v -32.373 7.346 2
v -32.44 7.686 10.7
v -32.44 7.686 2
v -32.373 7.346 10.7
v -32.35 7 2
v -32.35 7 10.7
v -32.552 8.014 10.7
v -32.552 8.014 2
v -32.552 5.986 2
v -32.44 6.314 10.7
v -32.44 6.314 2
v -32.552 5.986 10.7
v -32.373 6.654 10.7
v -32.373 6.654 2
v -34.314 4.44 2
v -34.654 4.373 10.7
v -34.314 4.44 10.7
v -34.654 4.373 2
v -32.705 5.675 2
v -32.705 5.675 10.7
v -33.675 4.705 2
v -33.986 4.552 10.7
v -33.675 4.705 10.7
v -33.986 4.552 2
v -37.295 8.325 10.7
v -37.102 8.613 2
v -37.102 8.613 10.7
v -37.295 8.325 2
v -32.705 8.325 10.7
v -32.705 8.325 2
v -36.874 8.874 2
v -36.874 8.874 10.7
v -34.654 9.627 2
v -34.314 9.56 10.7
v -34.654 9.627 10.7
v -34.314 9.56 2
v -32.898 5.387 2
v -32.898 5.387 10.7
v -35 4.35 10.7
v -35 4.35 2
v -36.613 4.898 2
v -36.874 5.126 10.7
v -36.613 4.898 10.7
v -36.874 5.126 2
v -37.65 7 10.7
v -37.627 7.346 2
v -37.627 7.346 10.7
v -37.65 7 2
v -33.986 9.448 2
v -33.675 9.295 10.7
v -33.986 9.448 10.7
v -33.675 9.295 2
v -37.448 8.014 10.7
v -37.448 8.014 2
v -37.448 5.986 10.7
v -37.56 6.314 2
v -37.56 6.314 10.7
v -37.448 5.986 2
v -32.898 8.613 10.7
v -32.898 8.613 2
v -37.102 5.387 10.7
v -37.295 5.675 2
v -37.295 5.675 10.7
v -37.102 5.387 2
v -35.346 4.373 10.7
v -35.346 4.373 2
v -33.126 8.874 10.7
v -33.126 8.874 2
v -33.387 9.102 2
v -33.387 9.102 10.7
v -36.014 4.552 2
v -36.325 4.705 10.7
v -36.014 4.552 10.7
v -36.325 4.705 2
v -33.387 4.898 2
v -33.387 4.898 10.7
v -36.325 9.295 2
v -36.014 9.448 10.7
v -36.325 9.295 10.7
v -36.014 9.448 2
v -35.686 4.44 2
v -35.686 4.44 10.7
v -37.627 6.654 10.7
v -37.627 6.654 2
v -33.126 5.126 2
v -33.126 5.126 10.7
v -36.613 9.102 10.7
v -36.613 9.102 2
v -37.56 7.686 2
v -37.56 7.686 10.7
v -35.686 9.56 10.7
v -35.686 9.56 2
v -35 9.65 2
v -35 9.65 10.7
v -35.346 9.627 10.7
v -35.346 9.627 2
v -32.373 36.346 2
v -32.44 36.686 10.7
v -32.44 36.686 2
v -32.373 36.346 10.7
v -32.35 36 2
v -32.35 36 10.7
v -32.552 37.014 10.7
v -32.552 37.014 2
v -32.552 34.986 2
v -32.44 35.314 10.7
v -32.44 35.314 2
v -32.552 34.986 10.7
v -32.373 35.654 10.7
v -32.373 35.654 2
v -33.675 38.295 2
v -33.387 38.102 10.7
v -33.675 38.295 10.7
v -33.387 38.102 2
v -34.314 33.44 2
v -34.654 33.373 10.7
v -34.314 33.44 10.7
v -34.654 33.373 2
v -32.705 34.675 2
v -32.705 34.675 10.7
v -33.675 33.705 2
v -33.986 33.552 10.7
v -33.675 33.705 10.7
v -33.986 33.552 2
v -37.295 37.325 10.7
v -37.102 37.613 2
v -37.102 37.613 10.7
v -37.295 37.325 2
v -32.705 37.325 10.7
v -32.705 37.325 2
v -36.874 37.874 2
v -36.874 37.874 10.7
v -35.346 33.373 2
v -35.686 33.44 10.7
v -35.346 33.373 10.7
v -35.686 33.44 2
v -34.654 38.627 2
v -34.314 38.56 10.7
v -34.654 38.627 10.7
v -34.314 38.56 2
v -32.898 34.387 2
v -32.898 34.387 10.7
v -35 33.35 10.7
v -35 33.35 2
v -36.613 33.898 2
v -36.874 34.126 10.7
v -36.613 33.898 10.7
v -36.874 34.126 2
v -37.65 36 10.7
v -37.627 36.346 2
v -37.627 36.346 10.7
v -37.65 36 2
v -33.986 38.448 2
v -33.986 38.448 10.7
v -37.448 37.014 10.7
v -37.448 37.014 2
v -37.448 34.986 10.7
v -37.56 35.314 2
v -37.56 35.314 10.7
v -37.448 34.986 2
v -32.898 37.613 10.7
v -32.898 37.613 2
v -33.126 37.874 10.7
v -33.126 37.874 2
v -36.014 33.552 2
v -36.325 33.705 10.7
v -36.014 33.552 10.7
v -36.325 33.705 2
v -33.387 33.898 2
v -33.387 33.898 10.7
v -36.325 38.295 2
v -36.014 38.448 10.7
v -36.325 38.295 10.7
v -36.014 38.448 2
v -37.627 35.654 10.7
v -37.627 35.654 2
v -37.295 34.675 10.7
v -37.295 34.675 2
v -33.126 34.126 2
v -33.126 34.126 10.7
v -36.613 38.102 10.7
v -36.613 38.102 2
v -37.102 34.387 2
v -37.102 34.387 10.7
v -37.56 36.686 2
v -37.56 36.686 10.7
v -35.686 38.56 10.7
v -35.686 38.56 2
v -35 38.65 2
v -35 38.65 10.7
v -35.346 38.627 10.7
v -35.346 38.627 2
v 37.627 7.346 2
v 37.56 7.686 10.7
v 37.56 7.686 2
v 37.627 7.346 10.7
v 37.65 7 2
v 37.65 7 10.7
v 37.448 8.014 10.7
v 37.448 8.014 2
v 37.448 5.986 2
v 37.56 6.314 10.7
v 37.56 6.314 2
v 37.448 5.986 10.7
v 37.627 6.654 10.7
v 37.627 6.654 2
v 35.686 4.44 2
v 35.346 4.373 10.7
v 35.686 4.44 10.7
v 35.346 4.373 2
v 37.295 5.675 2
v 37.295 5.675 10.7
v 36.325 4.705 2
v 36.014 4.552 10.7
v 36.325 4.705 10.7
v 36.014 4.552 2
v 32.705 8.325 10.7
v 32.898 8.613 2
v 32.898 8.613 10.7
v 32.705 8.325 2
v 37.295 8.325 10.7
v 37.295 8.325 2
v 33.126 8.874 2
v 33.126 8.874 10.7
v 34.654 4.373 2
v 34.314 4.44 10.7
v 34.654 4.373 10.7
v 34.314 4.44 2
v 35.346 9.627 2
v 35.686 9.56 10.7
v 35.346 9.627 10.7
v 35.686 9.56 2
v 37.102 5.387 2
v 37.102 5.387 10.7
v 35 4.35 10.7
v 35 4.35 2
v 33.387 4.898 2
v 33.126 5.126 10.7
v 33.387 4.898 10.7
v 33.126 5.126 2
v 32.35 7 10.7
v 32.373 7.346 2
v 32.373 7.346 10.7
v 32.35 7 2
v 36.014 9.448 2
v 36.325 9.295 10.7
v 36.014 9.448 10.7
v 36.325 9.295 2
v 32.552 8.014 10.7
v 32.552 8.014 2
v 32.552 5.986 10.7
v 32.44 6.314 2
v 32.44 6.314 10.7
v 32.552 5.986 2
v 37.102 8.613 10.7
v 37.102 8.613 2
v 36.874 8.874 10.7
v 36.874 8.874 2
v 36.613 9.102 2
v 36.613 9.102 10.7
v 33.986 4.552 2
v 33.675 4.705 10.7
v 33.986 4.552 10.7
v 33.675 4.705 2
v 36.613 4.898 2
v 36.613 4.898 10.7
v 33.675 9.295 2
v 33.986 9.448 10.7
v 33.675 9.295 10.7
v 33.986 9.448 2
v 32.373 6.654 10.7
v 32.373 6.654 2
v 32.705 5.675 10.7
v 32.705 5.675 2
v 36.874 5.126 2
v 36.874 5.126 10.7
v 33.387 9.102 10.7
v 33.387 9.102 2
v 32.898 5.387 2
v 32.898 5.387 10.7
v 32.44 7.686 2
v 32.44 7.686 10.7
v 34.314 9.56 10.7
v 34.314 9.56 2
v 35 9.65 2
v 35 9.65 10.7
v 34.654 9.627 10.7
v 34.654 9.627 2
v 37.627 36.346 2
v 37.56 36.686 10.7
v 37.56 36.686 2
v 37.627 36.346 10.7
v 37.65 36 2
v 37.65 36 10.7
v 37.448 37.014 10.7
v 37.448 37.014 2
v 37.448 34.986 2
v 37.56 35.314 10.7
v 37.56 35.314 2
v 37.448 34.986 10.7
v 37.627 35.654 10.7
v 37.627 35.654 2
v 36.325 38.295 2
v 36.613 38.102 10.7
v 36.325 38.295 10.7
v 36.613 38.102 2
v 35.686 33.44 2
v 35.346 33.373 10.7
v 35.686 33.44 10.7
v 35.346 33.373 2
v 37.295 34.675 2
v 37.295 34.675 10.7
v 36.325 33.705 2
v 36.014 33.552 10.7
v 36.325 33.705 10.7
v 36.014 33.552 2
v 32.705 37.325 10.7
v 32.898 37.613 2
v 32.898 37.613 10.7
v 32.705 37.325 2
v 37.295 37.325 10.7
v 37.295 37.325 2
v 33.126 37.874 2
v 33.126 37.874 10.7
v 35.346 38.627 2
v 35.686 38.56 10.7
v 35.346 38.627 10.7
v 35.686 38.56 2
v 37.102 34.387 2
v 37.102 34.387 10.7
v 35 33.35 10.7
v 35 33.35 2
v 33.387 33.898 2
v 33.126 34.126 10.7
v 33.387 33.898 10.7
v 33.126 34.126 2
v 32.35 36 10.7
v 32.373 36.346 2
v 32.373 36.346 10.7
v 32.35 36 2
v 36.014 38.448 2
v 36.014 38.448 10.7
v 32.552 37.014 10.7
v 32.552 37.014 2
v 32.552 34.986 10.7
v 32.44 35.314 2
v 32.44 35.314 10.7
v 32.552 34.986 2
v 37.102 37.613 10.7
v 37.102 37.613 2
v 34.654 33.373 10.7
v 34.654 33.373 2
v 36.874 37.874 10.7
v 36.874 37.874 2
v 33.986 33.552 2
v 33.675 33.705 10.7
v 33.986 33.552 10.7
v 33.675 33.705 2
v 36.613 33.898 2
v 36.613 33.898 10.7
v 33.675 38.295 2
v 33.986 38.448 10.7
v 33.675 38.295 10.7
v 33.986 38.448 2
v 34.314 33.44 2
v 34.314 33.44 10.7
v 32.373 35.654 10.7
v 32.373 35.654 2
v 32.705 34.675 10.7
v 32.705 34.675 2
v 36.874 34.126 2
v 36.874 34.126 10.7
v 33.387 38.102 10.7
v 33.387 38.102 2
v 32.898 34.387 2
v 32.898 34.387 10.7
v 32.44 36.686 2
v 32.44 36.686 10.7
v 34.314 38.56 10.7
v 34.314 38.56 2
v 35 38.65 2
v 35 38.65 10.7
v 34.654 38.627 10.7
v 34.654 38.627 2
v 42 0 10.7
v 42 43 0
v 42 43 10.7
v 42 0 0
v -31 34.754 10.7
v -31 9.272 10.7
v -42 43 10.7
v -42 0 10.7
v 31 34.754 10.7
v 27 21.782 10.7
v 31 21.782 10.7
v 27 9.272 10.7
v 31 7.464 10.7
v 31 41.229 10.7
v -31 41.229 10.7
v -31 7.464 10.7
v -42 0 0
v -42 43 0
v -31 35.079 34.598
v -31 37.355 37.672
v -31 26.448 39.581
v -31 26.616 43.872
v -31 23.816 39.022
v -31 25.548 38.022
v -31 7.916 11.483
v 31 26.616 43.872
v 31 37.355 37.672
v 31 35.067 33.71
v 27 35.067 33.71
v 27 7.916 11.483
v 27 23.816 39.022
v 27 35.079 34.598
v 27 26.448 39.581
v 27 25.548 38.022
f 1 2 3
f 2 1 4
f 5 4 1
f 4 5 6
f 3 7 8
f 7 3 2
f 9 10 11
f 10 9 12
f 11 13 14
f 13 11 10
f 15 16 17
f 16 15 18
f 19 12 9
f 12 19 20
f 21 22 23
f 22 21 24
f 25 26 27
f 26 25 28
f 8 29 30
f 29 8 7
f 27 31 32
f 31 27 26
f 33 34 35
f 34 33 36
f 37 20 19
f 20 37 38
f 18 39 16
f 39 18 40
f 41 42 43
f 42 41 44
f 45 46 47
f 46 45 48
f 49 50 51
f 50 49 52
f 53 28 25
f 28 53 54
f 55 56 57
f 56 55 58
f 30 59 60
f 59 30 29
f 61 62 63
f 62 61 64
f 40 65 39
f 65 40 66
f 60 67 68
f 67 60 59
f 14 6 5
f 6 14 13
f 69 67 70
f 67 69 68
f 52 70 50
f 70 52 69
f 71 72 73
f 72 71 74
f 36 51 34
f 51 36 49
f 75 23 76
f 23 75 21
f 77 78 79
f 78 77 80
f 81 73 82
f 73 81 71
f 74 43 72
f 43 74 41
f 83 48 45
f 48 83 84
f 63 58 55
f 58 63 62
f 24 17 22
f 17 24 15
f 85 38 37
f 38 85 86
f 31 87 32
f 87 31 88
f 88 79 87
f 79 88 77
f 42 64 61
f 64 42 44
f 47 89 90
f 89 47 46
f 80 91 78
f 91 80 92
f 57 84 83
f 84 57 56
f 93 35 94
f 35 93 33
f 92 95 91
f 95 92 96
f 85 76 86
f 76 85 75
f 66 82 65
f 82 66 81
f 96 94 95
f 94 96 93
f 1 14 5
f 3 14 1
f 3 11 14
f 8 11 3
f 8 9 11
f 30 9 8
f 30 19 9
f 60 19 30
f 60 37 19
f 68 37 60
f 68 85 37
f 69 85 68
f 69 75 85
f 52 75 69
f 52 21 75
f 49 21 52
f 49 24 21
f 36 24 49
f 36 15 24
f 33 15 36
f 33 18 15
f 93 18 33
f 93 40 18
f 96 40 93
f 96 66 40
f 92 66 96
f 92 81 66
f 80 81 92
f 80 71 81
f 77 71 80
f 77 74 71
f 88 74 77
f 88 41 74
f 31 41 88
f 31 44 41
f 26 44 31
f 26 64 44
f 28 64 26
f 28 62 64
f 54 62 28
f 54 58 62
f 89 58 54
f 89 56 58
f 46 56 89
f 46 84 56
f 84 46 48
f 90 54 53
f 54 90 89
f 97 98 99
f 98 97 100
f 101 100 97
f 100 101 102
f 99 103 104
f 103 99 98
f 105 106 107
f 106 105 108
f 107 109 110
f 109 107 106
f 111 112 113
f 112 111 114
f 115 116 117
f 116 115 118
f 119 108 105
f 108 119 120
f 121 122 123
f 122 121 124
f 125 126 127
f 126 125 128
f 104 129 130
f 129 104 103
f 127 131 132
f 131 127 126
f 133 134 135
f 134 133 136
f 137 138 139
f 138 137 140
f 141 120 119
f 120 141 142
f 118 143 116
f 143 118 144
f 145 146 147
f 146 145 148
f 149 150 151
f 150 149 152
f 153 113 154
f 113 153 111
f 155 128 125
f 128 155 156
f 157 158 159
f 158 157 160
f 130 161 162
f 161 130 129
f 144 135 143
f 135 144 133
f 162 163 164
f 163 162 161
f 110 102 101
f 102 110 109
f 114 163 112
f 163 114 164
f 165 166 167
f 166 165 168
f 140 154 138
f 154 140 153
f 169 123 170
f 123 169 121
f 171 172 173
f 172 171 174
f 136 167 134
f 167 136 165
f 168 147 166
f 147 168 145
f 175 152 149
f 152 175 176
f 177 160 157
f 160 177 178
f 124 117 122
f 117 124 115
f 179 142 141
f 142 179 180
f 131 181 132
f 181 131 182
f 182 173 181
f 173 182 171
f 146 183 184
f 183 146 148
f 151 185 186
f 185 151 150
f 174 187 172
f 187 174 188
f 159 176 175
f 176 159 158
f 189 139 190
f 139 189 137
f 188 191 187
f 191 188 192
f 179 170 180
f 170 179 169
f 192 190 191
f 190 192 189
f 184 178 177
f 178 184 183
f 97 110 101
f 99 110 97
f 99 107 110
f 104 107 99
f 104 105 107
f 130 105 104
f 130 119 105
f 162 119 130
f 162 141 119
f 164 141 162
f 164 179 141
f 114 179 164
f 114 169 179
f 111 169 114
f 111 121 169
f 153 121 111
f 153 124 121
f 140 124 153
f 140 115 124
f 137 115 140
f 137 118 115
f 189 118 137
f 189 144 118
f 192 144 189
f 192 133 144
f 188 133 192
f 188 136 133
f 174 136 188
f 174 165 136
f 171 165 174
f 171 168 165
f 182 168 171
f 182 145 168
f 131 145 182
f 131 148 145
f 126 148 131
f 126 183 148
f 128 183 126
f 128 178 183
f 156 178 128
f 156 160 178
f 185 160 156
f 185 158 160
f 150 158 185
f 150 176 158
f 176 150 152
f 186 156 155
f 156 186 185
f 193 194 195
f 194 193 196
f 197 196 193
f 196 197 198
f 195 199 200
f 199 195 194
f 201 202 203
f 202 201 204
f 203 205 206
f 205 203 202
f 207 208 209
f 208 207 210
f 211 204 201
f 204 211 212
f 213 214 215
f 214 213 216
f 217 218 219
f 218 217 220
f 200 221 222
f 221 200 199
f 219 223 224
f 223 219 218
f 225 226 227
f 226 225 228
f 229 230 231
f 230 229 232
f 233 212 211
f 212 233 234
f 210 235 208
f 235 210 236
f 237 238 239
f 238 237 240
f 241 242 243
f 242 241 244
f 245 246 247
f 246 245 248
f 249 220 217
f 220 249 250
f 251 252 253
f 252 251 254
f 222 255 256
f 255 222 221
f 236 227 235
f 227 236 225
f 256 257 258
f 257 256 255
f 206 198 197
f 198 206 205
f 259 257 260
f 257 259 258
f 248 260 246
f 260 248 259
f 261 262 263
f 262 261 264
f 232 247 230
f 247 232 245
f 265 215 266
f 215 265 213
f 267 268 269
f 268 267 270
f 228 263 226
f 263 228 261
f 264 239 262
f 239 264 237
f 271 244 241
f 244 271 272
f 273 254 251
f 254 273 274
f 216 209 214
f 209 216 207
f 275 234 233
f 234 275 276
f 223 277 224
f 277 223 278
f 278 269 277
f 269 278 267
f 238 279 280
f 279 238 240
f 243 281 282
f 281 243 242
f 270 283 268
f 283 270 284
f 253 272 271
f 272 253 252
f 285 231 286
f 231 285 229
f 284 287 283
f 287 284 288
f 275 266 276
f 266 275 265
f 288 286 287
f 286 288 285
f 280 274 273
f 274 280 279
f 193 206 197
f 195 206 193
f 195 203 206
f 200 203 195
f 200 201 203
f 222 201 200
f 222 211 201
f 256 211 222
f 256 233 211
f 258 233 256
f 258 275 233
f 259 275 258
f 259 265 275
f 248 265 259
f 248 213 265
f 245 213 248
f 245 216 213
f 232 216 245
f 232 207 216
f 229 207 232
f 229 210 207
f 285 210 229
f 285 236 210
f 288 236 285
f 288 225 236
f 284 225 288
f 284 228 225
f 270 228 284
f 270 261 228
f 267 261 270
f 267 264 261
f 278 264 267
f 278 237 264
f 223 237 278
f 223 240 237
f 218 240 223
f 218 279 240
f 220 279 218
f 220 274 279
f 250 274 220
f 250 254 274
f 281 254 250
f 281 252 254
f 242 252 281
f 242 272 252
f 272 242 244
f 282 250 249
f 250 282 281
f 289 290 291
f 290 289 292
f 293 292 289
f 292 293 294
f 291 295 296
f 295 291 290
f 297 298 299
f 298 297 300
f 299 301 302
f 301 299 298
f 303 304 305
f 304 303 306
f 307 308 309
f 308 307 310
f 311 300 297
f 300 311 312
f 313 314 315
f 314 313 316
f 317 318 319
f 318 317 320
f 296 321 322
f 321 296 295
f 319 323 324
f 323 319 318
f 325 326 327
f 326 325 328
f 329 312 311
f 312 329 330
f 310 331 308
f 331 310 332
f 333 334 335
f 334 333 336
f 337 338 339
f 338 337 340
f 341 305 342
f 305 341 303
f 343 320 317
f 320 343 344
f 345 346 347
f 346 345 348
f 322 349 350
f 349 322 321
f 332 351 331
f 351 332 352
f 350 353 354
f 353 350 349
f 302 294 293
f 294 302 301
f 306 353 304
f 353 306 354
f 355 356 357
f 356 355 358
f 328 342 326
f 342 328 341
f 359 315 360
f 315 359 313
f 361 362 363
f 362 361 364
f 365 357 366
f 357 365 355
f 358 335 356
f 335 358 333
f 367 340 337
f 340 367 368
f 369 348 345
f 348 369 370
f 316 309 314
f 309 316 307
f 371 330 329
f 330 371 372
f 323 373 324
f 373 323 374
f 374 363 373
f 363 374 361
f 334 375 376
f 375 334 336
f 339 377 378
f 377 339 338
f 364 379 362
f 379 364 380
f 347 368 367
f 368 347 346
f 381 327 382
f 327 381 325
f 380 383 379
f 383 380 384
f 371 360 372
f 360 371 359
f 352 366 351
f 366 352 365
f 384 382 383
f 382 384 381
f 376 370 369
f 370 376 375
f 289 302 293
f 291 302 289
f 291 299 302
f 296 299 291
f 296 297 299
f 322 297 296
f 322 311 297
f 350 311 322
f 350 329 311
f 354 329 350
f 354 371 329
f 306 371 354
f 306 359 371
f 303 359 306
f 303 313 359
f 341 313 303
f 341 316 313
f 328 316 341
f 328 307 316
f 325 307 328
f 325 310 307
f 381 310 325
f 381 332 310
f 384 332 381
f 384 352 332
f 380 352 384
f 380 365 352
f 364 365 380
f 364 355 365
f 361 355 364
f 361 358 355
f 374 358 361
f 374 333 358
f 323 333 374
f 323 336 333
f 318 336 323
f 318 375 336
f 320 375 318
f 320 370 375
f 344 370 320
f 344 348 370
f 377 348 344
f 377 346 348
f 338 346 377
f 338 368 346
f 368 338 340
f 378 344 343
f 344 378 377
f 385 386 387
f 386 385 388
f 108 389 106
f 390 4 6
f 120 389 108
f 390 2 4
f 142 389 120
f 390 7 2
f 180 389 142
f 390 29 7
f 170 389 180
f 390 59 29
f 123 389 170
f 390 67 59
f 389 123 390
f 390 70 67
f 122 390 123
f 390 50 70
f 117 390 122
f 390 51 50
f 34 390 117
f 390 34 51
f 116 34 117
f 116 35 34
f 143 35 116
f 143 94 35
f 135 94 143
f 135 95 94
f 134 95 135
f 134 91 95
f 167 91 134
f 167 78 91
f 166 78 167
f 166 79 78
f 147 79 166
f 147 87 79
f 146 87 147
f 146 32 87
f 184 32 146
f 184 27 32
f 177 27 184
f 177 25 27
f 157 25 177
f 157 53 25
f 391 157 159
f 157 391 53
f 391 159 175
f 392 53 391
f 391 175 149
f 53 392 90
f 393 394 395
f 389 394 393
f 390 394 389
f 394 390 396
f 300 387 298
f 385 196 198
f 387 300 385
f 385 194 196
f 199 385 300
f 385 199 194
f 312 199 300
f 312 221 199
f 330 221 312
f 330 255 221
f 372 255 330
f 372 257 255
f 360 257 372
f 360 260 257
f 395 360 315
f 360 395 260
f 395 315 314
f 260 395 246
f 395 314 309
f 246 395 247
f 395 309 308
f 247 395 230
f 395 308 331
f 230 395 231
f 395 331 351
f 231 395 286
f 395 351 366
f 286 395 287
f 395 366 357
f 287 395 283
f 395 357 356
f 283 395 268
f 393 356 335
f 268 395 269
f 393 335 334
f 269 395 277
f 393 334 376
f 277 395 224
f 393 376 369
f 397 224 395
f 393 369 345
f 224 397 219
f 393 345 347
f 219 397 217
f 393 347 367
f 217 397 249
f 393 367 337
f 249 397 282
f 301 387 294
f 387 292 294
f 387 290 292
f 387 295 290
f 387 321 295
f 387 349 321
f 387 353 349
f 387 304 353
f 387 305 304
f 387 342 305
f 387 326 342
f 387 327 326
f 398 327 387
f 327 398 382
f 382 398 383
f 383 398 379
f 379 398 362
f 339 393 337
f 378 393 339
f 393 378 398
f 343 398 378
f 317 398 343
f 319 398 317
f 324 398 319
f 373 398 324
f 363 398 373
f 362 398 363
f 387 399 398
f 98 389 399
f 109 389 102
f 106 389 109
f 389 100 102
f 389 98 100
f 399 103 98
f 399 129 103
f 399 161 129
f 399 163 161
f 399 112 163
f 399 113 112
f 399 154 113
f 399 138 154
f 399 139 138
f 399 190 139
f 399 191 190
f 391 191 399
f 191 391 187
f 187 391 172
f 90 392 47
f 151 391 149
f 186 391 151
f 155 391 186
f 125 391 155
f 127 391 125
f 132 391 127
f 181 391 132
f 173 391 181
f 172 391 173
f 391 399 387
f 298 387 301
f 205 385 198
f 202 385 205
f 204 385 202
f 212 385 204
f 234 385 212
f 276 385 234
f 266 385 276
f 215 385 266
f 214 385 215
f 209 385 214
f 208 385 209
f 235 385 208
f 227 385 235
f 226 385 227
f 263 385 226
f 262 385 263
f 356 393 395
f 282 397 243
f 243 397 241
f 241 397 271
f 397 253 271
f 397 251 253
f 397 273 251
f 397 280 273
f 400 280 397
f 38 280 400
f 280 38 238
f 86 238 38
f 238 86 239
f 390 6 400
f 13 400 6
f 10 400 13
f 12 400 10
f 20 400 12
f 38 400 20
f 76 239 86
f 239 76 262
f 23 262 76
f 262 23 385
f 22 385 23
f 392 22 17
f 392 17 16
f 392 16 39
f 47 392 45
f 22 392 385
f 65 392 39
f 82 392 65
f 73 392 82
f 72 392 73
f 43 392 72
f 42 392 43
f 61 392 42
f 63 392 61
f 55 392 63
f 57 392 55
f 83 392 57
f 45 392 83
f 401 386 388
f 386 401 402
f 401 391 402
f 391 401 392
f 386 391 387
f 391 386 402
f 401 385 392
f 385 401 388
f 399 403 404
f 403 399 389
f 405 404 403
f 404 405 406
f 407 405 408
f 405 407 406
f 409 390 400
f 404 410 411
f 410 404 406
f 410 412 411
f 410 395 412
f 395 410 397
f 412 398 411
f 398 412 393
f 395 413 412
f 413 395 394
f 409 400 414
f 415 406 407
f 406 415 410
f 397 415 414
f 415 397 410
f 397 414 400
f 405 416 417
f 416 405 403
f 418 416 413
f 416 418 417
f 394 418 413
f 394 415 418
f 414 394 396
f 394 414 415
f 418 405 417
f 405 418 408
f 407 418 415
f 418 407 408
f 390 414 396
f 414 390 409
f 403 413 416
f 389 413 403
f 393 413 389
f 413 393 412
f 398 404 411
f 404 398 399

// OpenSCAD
// Magnetic desk stand for the LilyGo T-Display S3 AMOLED, IN ITS CASE
// (La Marzocco shot-timer display project)
//
// Landscape orientation: the case's long edge runs horizontal, tilted back
// for reading, sitting on top of the espresso machine held by 4 rod
// magnets pressed into the base. The USB-C cable exits a short (now
// vertical) edge, left or right - see cable_exit_right below.
//
// Case dimensions as measured by hand: 58 x 30 x 10 mm (length x height x
// thickness). This holds the case by its outer envelope - the two long
// edges gripped by rails, a closed cap on one short edge, open on the
// other short edge for the cable and for sliding the case in. No
// assumptions are made about the case's exact shape beyond its bounding
// box, so it's robust to not knowing the case's own geometry in detail -
// but DOES assume it's close to a plain rectangular box. Check the fit
// against your actual case before printing if it has, say, a rounded or
// stepped profile.

// ---------- Case (outer envelope, not the bare board) ----------
case_l = 58;    // length - horizontal when mounted
case_h = 35;    // height - vertical when mounted (rail-to-rail span) -
                // corrected from an initial 30mm measurement that was
                // too short for the real case to seat properly
case_t = 10;    // thickness (front-to-back)

cable_exit_right = false;  // false swaps the open end to the left

// ---------- Cradle (holds the case by its edges) ----------
slot_clearance  = 0.4;   // extra depth/height so the case slides in freely
retain_lip      = 1.6;   // how far the front lip overlaps onto the case
frame_margin    = 4;     // solid rail/cap material around the case
frame_depth     = case_t + slot_clearance + 2;  // channel depth (front-to-back)
lip_depth       = 2;     // thickness of the narrower front-lip section

frame_h   = case_h + 2 * frame_margin;
frame_len = case_l + frame_margin;        // + frame_margin = the closed cap;
                                           // the open end needs no extra
                                           // margin, it's open

// ---------- Magnets ----------
magnet_d      = 5.0;
magnet_h      = 8.47;
magnet_hole_d = 5.3;     // press-fit clearance
magnet_hole_h = 8.7;
// A thin (sub-1mm) floor is also an unreliable print - the first few
// layers over a pocket that size can come out pinholed or uneven. 2mm
// prints solidly and keeps the magnet from directly touching (and
// scratching) the machine, at the cost of a bit of pull - still far more
// than needed for this stand's weight.
magnet_floor  = 2;       // plastic skin between magnet and machine surface
base_t        = magnet_hole_h + magnet_floor;   // 10.7 mm
magnet_inset  = 7;       // pocket center distance from each base edge

// ---------- Base & stand ----------
base_w       = 84;       // just wide enough for the magnets to clear the
                          // now full-width wedge in X, plus a small
                          // margin (see the assert below)
base_d       = 43;       // just deep enough that back_wall()'s own foot
                          // (now the model's back-most feature) still
                          // lands on the base, so nothing overhangs past
                          // its back edge - found by rendering and
                          // checking the model's bounding box, not derived
tilt_angle   = 60;       // degrees from horizontal - adjust to taste
strut_len_margin = 0.5;  // mm of slack kept above the computed minimum,
                          // see strut_len below
// The wedge holds up the frame's bottom rail, which runs horizontally -
// unlike a portrait layout, support and rail are NOT inline here, so a
// narrow post (or a thin wall, tried and printed twice, both times
// separating partway up - too little bonding area to resist the printer's
// own vibration) would leave both ends of the rail cantilevered in mid-air
// (a first wedge version left 4 mm unsupported on each side at
// frame_len=62, strut_w=54 - fine structurally, but easy to miss as a
// support at all when just glancing at the model). The wedges (this one
// and back_wall()) span the rail's FULL width, including under the
// closed cap end: that end is solid (no cuts) but still needs support
// from below like everywhere else - being solid doesn't make it
// self-supporting on its own, it's still suspended above the base same
// as the open end is. (An earlier version of this fix narrowed the
// wedges to stop short of the cap, reasoning the cap didn't need it -
// wrong: that just left its own bottom edge floating instead.)
wedge_x_min  = -frame_len/2;
wedge_x_max  =  frame_len/2;
wedge_w      = wedge_x_max - wedge_x_min;
strut_t      = 8;        // depth of the wedge's foot, where it meets the
                          // base (front-to-back)
strut_foot_y = strut_t/2; // the foot's own front face flush with the
                          // base's front edge (y=0) - the slope starts
                          // right there, so nothing behind it is ever
                          // left open/unsupported
strut_sink   = 6;        // how far the tilt pivot sits below the base's
                          // top face - keeps the frame's own join to the
                          // wedge solid and gap-free regardless of
                          // tilt_angle, same reasoning as support_wedge()

// The front wedge only holds up the frame's BOTTOM edge - tilted back,
// the frame's TOP leans further back and higher than that, cantilevered
// on the frame's own rigidity alone with nothing underneath it. It holds
// (one piece, confirmed by rendering), but looks and feels like it's
// hanging in mid-air. back_wall() below closes the triangle: a second,
// shorter wedge from the base up to the frame's top, so the frame is
// braced at both ends instead of propped from the front alone.
back_wall_t      = 8;    // depth of the back wall's foot (front-to-back)
back_wall_margin = 0.5;  // mm of backward lean kept past the computed
                          // minimum, see back_wall_foot_front_y below
// The case sits INSIDE the frame's own channel, open at the back for the
// cable - tilted back, that open channel sweeps through increasingly
// large Y the higher up the frame you look (see target_top_front_y's own
// comment). A wall built to reach the frame's FRONT edge, like the first
// version of this fix, cuts straight across that swept space and blocks
// the case from seating - which is what actually happened on a real
// print. Attaching only to the frame's own back wall instead - the
// `+2` of slack already built into frame_depth for exactly this, a
// couple mm of solid material behind the case - keeps this wedge fully
// behind the case at every height, never in its way.
back_wall_attach_w = 2;

$fn = 48;

// strut_len (how far the wedge rises, pre-tilt, before the frame starts)
// is computed rather than hand-tuned: it's the smallest value that still
// keeps the frame's own lowest corner (the back-bottom edge of its depth
// channel, at y=frame_depth, z=0 locally) at or above the base's bottom
// face once tilted - any smaller and that corner pokes out below z=0,
// which a slicer would simply clip off. Keeping this at its minimum is
// what keeps the whole stand as short - and so as fast to print - as
// tilt_angle allows.
tilt_theta = -(90 - tilt_angle);
strut_len_min = (strut_sink - base_t - frame_depth * sin(tilt_theta)) / cos(tilt_theta);
strut_len = strut_len_min + strut_len_margin;

// back_wall_foot_front_y is computed, not placed by eye: target_top_front_y
// is the Y of the back-wall target's own front edge - local y =
// (frame_depth - back_wall_attach_w) on the proxy, i.e. the near side of
// the attachment strip (see back_wall_attach_w above). The foot must
// start at or before that Y, or the hull connecting foot to target would
// have to lean forward as it rises, which is exactly the overhang a
// slicer flags ("flying support"/no bed contact under part of the
// model) and needs support material to print. Leaning back instead
// (foot_front_y a bit further forward still) keeps it self-supporting
// the same way the front wedge already is.
target_top_front_y = strut_foot_y + (frame_depth - back_wall_attach_w) * cos(tilt_theta)
                          - (strut_len + frame_h - 1) * sin(tilt_theta);
back_wall_foot_front_y = target_top_front_y - back_wall_margin;
back_wall_foot_back_y  = back_wall_foot_front_y + back_wall_t;

// Sanity checks (visible in the console on every render): the magnet
// pockets must clear the wedge's foot - checked as an actual
// rectangle-to-circle distance, not separate X/Y checks, since the foot
// now starts flush with the front edge and sits close to the front
// magnet row in Y, kept clear only because it is narrower than the
// magnets' X spacing.
assert(tilt_angle > 0 && tilt_angle < 90,
    "tilt_angle must be between 0 and 90 (degrees from horizontal) - the strut_len formula above assumes that range");

wedge_foot_front_y = strut_foot_y - strut_t/2;
wedge_foot_back_y  = strut_foot_y + strut_t/2;
min_pocket_wall = 1.0;    // minimum plastic left between a magnet pocket
                          // and the wedge foot

function rect_point_dist(xmin, xmax, ymin, ymax, px, py) =
    let(dx = max(max(xmin - px, px - xmax), 0),
        dy = max(max(ymin - py, py - ymax), 0))
    sqrt(dx*dx + dy*dy);

magnet_xs = [-(base_w/2 - magnet_inset), (base_w/2 - magnet_inset)];
magnet_ys = [magnet_inset, base_d - magnet_inset];
for (mx = magnet_xs)
    for (my = magnet_ys) {
        assert(rect_point_dist(wedge_x_min, wedge_x_max, wedge_foot_front_y, wedge_foot_back_y, mx, my)
                   > magnet_hole_d/2 + min_pocket_wall,
            "wedge foot comes too close to a magnet pocket - widen base_w, narrow wedge_w, or move the pocket (magnet_inset)");
        assert(rect_point_dist(wedge_x_min, wedge_x_max, back_wall_foot_front_y, back_wall_foot_back_y, mx, my)
                   > magnet_hole_d/2 + min_pocket_wall,
            "back wall foot comes too close to a magnet pocket - widen base_w, narrow wedge_w, or move the pocket (magnet_inset)");
    }

module board_cradle_right() {
    // Built directly in final mounted orientation (pre-tilt): x =
    // horizontal, open end at +x, closed cap at -x; z = vertical (rail
    // span); y = depth (channel). Centered on x=0 and z=0 so it drops
    // straight onto the strut. mirror()'d at the call site for the other
    // cable side - see cable_exit_right.
    //
    // retain_lip's own step (solid down to y=0 only in a band near the
    // top/bottom rail, open channel everywhere else) is unavoidably a
    // small local overhang once the whole frame tilts back - confirmed by
    // rendering this cradle alone, tilted, with no wedge at all, and
    // checking face angles: it's there regardless of what holds the
    // frame up. Verified total extent stays under ~250mm^2 in a few small
    // patches at the closed-cap end, well within what FDM bridges without
    // support (short spans, not a broad flat shelf) - unlike the tall
    // thin panel/wall this stand's own support structure replaced earlier,
    // this isn't the kind of feature that showed up as a real print issue.
    cap_x = -frame_len/2 + frame_margin;   // where the closed cap ends and
                                            // the open channel begins
    difference() {
        translate([-frame_len/2, 0, -frame_h/2])
            cube([frame_len, frame_depth, frame_h]);

        // back pocket: open at the back and the +x end (overshoots past
        // the frame on purpose), stops lip_depth short of the front face
        translate([cap_x, lip_depth, -(case_h + slot_clearance)/2])
            cube([frame_len, frame_depth, case_h + slot_clearance]);

        // front window: narrower by retain_lip on each side, so a lip of
        // plastic overlaps the case's front face and holds it in
        translate([cap_x, -1, -(case_h - 2*retain_lip)/2])
            cube([frame_len, lip_depth + 1, case_h - 2*retain_lip]);
    }
}

module board_cradle() {
    if (cable_exit_right)
        board_cradle_right();
    else
        mirror([1, 0, 0]) board_cradle_right();
}

// A thin, tall, tilted, unsupported wall (the original design here) turned
// out to be too weak to print reliably even with slicer supports - it
// doesn't have enough bonding area low down to resist the printer's own
// vibration, and once it flexes even a little the layers above drift
// further and further (two failed prints, both separating partway up).
//
// A solid wedge replaces it: one continuous ramp of material from the
// base up to the frame, with no overhang at any height, since its own
// cross-section only ever grows as it's built up - there's nothing to
// sag, snap loose, or need print supports for, and it is mechanically
// far stronger than a thin panel ever was.
module frame_bottom_proxy() {
    // A thin slice standing in for the frame's own bottom-rail footprint,
    // used only to tell hull() where the wedge needs to reach - not part
    // of the visible model (board_cradle() provides the real geometry).
    translate([wedge_x_min, 0, 0])
        cube([wedge_w, frame_depth, 1]);
}

module frame_back_edge_proxy() {
    // Like frame_bottom_proxy(), but only the back_wall_attach_w strip at
    // the very back of frame_depth - see back_wall_attach_w's comment for
    // why back_wall() targets this narrower strip instead of the frame's
    // full depth.
    translate([wedge_x_min, frame_depth - back_wall_attach_w, 0])
        cube([wedge_w, back_wall_attach_w, 1]);
}

module support_wedge() {
    hull() {
        // foot, flat on the base
        translate([wedge_x_min, strut_foot_y - strut_t/2, 0])
            cube([wedge_w, strut_t, 1]);
        // up to the frame's own bottom edge, through the same tilt used
        // to place the frame itself (see stand() below) - kept identical
        // on purpose, so the wedge's top and the frame's bottom coincide
        translate([0, strut_foot_y, base_t - strut_sink])
            rotate([-(90 - tilt_angle), 0, 0])
                translate([0, 0, strut_len])
                    frame_bottom_proxy();
    }
}

module back_wall() {
    hull() {
        // foot, flat on the base, flush with its back edge
        translate([wedge_x_min, back_wall_foot_front_y, 0])
            cube([wedge_w, back_wall_t, 1]);
        // up to the back edge of the frame's own TOP - same tilt
        // transform as support_wedge(), just reaching frame_h higher
        // before rotating, and using the narrower back-edge proxy (see
        // back_wall_attach_w) instead of the full-depth one, so this
        // only ever touches frame material behind the case, never the
        // case itself. The proxy itself is a 1mm slice, offset back by
        // that 1mm here so it lands just inside the frame's top face
        // rather than 1mm above it (support_wedge() overshoots upward
        // into the frame the same way - there the extra mm is harmless
        // since it only adds overlap, but up here it would needlessly
        // add height past the frame's own top).
        translate([0, strut_foot_y, base_t - strut_sink])
            rotate([-(90 - tilt_angle), 0, 0])
                translate([0, 0, strut_len + frame_h - 1])
                    frame_back_edge_proxy();
    }
}

module magnet_pockets() {
    xs = [-(base_w/2 - magnet_inset), (base_w/2 - magnet_inset)];
    ys = [magnet_inset, base_d - magnet_inset];
    for (x = xs)
        for (y = ys)
            translate([x, y, base_t - magnet_hole_h])
                cylinder(d = magnet_hole_d, h = magnet_hole_h + 0.5);
}

module base() {
    difference() {
        translate([-base_w/2, 0, 0])
            cube([base_w, base_d, base_t]);
        magnet_pockets();
    }
}

module stand() {
    base();
    support_wedge();
    back_wall();

    // Tilt the frame backward about a point buried strut_sink deep in the
    // base - guarantees a solid, gap-free join with the wedge regardless
    // of tilt_angle (same reasoning as support_wedge()'s own hull target:
    // the frame's bottom is no longer a flat, level face once rotated).
    translate([0, strut_foot_y, base_t - strut_sink])
        rotate([-(90 - tilt_angle), 0, 0])
            translate([0, 0, strut_len + frame_h/2])
                board_cradle();
}

stand();
